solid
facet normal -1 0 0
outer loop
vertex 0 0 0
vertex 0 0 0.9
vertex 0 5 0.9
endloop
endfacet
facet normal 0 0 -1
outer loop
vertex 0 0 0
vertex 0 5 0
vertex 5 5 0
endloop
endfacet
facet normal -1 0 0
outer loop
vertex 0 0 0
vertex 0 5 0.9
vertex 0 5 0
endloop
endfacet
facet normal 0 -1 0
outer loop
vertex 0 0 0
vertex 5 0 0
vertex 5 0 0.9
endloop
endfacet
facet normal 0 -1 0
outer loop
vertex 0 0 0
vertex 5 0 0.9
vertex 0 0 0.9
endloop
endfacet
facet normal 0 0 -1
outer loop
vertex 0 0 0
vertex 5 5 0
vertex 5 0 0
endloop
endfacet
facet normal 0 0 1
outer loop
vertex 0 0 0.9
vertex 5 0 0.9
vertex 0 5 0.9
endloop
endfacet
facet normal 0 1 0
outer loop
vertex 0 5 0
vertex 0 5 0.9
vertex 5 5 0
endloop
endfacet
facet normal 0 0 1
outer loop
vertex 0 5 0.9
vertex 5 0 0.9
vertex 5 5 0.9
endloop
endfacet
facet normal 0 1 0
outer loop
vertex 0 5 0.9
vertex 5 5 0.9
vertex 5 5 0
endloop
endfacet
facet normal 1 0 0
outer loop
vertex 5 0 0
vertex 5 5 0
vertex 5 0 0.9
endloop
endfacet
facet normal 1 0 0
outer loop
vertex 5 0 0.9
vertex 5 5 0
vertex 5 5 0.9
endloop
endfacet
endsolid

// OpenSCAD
/* Warning, this is a very basic generator with a lot of approximation 
input data : [VQFN, RNX, 5x5x0.9mm, 32, , B, C04-00232B]
generated by com.zoubworld.electronics.cad.model3d.Basic
Date : Sun Feb 15 10:50:48 CET 2026
*/

//body
color("black")
translate([0,0,0])
cube([5.0,5.0,0.9], center=false);
